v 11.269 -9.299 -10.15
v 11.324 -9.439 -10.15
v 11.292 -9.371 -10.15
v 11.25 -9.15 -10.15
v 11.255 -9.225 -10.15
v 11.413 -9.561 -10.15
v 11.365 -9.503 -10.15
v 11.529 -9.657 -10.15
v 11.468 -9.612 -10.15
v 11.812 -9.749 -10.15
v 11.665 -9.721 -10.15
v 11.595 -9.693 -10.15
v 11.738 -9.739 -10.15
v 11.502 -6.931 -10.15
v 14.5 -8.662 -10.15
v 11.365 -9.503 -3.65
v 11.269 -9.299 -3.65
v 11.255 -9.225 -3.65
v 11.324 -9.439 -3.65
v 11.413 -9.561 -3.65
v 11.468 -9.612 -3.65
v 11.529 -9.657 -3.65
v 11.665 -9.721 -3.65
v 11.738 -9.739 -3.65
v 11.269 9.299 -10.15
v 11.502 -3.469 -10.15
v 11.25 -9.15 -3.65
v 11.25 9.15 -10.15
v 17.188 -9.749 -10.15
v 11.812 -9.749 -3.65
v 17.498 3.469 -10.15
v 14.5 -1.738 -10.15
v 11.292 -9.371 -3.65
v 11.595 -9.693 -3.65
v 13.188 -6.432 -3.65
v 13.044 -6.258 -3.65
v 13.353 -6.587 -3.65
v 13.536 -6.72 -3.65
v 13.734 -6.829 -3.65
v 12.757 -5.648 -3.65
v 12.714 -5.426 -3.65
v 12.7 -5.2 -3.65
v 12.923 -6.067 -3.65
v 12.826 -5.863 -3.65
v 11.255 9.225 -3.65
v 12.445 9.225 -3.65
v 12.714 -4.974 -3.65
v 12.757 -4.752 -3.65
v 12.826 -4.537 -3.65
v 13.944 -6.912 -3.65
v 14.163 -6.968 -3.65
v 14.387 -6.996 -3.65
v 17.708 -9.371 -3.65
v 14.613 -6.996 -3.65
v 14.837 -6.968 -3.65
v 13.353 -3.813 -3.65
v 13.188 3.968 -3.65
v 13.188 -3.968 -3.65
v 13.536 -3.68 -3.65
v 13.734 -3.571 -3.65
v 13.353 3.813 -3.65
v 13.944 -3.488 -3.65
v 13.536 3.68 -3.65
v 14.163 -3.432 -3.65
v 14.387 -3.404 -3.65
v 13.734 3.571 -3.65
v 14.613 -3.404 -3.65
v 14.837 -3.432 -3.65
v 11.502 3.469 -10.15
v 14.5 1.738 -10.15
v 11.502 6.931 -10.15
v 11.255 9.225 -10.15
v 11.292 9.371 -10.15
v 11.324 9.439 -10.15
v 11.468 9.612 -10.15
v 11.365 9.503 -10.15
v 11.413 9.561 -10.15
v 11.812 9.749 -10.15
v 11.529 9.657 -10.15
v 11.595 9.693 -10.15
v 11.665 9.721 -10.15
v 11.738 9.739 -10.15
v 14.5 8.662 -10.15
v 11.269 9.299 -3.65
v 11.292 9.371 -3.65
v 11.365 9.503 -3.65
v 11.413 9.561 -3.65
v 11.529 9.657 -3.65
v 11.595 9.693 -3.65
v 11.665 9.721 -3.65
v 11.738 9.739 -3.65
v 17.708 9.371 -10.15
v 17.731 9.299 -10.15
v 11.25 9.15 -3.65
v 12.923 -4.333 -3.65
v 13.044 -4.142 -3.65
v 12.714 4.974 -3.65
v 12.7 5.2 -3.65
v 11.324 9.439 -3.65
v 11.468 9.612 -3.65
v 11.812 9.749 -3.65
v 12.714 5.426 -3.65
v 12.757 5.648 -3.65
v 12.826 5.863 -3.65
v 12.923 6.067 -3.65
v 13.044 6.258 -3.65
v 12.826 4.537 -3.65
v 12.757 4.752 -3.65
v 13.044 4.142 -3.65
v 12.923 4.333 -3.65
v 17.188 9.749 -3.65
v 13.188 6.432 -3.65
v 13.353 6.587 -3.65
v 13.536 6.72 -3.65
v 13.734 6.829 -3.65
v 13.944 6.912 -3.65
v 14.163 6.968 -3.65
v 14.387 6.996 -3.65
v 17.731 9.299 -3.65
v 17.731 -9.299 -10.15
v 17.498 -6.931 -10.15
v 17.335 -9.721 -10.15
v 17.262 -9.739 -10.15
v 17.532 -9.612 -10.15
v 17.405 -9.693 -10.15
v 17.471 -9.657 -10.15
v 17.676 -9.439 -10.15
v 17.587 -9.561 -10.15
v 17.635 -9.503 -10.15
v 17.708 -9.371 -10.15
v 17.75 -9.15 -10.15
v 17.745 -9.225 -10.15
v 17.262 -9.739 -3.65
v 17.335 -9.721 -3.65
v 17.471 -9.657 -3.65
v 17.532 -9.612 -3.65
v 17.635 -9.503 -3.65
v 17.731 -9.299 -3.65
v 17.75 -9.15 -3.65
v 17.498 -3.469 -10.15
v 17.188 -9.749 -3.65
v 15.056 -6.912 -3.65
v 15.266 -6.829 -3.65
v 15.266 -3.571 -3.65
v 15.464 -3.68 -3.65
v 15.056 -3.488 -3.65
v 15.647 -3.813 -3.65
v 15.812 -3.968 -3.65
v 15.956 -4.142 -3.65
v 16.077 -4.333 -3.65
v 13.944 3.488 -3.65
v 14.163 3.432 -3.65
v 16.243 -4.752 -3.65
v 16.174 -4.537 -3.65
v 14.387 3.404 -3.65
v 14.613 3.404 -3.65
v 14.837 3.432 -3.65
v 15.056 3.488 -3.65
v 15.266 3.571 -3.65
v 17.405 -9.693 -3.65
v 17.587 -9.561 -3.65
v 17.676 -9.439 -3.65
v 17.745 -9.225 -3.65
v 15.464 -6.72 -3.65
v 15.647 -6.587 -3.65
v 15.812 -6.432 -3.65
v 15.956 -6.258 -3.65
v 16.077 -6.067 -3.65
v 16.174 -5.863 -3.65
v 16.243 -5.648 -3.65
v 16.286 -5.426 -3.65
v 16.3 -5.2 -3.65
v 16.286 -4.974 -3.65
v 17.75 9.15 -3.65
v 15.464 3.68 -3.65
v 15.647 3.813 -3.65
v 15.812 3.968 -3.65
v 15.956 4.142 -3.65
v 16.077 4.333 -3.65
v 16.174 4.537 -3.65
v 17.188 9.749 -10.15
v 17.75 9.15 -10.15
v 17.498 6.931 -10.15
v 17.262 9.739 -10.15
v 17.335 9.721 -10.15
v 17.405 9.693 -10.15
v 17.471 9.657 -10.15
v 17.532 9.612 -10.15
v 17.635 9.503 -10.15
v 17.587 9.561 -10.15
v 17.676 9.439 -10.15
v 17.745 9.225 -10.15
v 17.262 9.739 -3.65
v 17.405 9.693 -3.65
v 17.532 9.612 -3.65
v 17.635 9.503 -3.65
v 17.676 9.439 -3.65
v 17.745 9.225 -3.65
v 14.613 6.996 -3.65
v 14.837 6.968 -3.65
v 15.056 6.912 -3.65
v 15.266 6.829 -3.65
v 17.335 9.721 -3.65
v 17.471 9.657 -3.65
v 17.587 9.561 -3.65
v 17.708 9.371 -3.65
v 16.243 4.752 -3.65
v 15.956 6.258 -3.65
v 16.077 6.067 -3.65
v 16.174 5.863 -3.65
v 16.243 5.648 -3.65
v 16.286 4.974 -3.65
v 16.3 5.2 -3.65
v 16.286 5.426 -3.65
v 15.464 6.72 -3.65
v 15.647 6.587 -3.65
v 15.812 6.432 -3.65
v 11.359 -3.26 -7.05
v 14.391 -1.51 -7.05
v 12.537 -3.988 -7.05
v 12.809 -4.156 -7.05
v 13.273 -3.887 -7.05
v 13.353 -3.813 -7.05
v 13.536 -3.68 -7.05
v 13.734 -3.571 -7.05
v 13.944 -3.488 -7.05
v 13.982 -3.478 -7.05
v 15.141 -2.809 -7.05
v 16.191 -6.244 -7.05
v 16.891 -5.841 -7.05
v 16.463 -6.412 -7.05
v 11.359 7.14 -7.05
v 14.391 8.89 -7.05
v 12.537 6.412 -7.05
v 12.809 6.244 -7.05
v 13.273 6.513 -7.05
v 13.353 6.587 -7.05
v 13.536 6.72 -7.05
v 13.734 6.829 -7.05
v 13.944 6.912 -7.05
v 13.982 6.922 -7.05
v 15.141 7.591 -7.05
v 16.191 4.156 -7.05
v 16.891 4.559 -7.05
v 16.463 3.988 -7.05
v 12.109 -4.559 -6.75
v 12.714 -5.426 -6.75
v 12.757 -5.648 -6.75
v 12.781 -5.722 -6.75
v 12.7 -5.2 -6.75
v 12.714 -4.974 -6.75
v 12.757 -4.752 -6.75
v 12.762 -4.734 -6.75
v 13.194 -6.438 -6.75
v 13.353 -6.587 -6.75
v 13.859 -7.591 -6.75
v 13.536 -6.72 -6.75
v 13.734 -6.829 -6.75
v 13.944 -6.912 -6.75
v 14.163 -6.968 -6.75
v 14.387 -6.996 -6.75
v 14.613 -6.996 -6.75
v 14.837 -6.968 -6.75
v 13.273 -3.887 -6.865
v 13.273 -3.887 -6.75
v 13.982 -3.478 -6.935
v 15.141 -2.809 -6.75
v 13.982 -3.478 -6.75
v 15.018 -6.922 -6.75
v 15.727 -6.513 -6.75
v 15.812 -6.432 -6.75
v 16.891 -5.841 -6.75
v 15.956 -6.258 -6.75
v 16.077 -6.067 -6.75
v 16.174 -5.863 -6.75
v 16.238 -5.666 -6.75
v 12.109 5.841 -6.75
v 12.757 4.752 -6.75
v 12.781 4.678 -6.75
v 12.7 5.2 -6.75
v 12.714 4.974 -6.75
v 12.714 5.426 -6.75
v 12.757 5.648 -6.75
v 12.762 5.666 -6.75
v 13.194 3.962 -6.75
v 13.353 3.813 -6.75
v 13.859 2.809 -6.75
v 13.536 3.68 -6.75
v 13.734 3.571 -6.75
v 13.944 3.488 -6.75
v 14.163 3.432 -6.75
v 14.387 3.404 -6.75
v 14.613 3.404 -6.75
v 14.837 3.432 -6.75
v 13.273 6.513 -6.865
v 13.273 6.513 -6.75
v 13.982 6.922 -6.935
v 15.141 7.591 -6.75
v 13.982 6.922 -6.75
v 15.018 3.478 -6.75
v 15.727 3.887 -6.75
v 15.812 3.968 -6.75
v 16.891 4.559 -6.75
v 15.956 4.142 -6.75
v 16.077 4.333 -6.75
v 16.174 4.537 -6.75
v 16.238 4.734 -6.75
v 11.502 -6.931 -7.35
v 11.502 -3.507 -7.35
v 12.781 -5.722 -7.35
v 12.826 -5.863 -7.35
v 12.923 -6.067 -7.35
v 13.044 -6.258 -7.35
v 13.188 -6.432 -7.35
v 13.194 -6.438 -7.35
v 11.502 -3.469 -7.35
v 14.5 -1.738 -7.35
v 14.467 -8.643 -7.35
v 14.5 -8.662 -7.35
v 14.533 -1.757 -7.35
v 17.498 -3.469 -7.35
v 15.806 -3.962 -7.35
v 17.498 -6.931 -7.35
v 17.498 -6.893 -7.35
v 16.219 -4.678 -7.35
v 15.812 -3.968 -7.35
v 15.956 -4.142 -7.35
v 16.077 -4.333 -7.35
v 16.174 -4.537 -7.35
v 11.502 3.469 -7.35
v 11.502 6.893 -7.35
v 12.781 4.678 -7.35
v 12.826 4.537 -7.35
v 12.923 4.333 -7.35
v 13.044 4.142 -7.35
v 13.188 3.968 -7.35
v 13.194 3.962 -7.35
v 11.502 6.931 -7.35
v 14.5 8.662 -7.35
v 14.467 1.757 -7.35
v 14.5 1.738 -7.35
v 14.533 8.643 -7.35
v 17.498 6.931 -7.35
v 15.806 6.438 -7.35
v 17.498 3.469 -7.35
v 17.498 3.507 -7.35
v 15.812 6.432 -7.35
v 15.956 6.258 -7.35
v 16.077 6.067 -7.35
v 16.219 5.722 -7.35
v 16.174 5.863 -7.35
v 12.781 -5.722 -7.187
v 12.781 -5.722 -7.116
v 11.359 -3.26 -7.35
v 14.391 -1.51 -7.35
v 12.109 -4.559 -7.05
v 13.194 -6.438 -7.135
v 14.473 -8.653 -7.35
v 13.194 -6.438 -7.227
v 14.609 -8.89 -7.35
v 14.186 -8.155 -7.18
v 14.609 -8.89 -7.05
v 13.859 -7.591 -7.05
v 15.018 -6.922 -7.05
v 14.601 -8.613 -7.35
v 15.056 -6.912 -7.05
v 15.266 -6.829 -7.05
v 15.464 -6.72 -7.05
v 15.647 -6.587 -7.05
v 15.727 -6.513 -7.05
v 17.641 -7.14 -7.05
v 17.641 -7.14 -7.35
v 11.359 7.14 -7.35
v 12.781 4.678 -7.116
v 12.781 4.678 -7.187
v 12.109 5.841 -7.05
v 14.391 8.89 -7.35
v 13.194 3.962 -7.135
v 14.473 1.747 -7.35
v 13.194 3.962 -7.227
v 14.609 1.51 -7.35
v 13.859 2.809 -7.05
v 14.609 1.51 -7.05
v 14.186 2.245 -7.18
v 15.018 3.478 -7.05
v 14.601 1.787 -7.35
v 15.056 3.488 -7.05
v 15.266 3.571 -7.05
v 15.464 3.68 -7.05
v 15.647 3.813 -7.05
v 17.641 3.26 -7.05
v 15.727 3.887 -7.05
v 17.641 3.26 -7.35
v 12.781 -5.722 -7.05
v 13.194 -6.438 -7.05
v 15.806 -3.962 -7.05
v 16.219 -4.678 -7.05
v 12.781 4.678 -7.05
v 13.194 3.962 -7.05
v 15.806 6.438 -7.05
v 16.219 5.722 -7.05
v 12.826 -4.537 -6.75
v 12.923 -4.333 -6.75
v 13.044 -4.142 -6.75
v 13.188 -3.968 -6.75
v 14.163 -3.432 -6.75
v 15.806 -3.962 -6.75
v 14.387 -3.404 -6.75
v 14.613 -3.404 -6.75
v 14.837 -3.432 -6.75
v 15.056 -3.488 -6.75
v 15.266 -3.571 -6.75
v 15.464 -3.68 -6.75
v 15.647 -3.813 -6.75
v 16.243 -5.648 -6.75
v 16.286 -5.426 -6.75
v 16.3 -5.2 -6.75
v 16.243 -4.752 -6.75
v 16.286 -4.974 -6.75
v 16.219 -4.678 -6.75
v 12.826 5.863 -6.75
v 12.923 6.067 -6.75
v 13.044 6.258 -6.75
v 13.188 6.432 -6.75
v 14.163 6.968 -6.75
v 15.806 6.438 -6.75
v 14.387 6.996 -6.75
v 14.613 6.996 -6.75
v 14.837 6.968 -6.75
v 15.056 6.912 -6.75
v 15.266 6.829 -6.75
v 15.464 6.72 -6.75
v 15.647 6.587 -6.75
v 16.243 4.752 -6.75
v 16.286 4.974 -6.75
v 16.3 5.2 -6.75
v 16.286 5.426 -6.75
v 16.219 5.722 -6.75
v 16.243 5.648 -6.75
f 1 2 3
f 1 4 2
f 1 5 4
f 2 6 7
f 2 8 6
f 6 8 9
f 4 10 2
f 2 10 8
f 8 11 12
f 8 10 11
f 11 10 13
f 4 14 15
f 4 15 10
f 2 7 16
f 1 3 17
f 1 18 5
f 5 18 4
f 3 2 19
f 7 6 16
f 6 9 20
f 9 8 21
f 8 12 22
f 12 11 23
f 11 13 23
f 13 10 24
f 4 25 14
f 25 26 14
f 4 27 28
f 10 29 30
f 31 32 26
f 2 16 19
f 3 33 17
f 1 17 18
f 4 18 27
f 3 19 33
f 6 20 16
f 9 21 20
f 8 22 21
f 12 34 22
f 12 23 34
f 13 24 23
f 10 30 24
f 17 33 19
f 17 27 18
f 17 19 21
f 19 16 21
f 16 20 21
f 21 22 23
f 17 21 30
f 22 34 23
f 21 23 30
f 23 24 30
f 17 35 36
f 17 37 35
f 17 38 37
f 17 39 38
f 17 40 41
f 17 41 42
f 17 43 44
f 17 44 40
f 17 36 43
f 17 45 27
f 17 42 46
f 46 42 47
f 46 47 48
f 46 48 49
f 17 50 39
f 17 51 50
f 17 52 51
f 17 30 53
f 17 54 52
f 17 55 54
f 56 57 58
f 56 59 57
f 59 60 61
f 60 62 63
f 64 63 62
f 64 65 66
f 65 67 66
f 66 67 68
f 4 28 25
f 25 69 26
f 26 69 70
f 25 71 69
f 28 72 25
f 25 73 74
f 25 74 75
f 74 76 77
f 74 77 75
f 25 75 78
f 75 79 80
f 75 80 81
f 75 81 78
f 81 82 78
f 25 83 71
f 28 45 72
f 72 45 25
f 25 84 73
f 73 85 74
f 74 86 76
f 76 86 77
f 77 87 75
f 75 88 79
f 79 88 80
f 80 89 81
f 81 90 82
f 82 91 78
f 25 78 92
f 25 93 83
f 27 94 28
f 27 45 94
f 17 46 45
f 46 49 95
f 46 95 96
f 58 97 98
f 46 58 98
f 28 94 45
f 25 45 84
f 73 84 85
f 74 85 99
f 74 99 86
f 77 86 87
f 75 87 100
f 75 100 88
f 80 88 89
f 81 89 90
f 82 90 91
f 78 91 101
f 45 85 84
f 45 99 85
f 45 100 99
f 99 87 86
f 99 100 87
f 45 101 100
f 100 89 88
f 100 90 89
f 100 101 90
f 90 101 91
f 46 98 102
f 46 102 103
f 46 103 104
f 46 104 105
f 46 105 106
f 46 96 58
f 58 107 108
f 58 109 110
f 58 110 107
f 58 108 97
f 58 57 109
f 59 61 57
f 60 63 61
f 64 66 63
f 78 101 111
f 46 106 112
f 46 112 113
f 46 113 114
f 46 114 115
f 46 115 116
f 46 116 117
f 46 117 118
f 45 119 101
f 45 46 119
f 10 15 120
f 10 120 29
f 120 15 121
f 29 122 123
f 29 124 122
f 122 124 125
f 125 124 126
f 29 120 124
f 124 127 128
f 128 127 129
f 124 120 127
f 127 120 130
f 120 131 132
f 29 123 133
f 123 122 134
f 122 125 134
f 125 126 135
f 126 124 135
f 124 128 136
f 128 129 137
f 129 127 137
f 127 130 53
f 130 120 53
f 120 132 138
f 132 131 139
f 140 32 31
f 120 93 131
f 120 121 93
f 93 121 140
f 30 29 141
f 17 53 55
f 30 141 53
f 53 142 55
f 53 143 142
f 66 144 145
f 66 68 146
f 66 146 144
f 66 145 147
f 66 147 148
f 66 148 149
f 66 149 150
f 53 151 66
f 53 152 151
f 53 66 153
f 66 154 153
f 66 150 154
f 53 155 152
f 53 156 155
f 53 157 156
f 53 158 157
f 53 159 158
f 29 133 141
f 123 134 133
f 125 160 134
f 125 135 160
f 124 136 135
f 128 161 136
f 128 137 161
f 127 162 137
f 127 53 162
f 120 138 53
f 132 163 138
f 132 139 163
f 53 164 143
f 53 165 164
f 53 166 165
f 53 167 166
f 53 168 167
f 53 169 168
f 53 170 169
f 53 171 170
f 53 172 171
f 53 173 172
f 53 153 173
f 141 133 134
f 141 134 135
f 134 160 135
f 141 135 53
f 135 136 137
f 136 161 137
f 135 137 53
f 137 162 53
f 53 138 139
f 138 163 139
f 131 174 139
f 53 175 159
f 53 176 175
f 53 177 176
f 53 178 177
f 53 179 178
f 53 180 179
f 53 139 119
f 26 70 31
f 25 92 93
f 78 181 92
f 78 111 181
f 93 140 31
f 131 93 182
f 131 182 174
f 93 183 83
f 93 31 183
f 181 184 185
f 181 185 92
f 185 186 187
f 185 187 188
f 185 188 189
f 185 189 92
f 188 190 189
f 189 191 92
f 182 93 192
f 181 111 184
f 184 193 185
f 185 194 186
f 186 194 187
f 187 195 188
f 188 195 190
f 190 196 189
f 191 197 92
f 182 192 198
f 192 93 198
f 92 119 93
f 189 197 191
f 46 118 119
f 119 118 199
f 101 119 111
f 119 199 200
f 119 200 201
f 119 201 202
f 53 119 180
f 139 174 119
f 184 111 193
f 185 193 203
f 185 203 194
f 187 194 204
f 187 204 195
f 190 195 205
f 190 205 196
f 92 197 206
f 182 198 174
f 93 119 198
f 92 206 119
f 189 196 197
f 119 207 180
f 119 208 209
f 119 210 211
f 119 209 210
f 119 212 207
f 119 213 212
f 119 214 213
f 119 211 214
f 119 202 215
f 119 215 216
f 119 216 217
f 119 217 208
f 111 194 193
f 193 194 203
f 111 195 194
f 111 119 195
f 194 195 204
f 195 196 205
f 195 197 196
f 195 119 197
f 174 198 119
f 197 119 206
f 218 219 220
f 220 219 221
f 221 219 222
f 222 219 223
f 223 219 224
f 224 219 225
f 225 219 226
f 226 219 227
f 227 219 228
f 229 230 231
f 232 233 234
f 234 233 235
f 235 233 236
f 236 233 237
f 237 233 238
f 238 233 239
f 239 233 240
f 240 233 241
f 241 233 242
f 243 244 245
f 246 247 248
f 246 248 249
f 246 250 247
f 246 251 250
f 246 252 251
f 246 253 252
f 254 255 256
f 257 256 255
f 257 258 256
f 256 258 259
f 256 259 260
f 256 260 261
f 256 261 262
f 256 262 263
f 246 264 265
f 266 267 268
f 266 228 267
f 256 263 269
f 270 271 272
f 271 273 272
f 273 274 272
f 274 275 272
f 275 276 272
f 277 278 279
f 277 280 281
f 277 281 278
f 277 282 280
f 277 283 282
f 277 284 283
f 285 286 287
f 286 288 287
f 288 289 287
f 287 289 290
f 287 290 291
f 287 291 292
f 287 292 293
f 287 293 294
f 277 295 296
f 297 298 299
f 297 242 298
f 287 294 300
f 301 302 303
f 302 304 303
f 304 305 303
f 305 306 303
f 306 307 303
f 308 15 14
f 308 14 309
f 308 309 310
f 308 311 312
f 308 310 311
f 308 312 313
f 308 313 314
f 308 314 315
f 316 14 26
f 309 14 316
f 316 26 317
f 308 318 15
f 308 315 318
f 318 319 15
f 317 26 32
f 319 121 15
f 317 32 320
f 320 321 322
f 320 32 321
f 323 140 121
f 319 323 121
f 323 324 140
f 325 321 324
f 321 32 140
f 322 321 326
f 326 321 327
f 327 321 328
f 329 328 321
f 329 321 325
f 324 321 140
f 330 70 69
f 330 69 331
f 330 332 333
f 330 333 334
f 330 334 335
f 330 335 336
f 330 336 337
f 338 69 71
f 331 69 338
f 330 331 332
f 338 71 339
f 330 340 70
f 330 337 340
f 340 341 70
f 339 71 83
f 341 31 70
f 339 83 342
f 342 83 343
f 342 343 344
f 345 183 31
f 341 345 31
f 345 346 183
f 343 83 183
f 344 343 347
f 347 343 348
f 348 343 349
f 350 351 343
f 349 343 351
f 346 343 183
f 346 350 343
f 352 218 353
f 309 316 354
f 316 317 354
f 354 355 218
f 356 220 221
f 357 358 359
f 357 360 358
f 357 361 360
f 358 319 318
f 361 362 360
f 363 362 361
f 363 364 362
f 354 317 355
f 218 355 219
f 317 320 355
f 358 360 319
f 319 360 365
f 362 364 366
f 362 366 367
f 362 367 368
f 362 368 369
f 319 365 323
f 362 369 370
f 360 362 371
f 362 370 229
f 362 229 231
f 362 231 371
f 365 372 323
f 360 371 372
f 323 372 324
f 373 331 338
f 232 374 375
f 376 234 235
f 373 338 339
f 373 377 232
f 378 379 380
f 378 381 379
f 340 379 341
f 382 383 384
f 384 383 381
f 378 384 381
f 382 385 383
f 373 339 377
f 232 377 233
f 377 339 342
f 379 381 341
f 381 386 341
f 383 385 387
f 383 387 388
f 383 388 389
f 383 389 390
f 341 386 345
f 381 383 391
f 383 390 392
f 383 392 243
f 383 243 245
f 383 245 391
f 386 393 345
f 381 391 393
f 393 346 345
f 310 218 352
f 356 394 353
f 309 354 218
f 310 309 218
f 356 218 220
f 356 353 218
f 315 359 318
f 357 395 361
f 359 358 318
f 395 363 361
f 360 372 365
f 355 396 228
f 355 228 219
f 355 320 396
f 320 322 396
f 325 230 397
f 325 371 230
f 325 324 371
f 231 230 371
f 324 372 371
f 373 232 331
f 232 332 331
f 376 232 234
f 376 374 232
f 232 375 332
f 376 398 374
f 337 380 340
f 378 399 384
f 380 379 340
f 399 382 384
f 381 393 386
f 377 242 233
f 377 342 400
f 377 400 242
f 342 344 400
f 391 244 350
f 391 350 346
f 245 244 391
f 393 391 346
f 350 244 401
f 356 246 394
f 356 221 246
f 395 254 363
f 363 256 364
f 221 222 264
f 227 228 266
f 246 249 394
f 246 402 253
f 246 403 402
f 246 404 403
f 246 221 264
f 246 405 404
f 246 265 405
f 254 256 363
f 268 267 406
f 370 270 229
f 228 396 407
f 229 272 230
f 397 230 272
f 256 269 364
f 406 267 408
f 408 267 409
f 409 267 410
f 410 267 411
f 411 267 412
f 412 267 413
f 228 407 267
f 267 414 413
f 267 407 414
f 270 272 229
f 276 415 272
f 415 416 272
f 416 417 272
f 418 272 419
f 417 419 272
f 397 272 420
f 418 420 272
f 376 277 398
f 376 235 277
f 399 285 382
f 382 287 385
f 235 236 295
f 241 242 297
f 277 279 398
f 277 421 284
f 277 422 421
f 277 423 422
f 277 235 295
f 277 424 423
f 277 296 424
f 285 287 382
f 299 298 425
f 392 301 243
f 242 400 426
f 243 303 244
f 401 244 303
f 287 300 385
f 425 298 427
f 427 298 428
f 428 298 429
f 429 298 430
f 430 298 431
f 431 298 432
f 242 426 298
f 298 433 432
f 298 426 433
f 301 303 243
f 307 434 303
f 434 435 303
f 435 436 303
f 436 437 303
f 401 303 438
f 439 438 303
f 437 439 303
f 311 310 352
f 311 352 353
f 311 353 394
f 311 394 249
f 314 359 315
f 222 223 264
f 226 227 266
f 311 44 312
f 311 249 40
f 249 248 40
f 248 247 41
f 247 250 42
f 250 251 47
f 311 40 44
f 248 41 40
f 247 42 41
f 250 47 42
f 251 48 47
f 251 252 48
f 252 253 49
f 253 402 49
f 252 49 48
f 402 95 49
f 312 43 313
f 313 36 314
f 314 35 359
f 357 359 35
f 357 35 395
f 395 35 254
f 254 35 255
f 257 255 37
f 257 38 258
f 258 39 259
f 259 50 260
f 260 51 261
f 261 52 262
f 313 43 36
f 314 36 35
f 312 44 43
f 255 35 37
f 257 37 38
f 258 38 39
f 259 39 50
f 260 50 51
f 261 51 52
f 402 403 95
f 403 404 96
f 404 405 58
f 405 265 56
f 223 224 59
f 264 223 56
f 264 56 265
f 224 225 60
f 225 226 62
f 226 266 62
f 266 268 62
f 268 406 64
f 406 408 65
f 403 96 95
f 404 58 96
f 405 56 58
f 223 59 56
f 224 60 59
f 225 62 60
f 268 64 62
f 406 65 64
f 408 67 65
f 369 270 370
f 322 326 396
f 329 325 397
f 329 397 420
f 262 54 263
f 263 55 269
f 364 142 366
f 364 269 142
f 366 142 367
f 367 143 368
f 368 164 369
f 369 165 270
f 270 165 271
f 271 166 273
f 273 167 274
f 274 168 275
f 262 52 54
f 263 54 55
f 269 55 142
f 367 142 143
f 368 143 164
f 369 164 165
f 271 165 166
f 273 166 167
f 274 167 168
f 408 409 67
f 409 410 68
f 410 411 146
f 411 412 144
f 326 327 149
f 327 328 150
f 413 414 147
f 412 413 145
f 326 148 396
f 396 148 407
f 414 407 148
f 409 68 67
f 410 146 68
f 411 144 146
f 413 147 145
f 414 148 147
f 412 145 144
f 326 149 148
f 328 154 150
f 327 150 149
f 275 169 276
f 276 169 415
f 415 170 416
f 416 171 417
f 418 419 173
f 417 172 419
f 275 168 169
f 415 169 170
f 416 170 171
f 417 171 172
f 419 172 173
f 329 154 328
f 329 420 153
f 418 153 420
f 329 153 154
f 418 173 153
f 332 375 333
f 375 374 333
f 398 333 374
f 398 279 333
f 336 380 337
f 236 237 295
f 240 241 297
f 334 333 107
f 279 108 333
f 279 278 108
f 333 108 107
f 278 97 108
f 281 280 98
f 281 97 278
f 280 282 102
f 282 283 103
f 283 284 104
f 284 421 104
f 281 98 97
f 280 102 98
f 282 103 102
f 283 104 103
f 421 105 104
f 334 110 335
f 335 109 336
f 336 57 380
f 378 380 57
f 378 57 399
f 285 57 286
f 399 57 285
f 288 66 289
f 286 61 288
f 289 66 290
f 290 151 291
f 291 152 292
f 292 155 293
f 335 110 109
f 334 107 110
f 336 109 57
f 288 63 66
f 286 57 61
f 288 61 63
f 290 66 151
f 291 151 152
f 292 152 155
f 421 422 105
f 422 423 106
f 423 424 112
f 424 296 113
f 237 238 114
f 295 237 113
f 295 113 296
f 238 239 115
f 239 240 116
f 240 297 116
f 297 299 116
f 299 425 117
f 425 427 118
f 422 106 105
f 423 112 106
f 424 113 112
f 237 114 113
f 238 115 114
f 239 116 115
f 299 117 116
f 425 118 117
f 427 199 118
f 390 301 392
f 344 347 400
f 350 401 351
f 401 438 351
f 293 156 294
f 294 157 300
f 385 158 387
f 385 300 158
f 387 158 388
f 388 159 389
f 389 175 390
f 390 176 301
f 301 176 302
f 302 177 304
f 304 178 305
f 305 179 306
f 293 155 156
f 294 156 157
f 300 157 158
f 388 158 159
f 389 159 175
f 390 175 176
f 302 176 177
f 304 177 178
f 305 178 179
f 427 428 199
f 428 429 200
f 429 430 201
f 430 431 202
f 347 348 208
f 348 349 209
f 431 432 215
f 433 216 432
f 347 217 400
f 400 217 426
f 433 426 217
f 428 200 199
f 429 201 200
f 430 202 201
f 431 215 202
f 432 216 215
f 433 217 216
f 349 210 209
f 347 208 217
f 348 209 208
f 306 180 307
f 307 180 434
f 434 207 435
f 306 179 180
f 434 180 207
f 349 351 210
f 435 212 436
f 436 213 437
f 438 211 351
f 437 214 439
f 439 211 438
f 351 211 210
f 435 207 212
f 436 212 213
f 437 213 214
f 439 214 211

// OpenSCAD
$fn = 50;

difference() {
	union() {
		translate(v = [14.5, 0, -10.15]) {
			hull() {
				translate(v = [-2.65, 9.15, 0]) {
					cylinder(h = 6.5, r = 0.6);
				}
				translate(v = [2.65, 9.15, 0]) {
					cylinder(h = 6.5, r = 0.6);
				}
				translate(v = [-2.65, -9.15, 0]) {
					cylinder(h = 6.5, r = 0.6);
				}
				translate(v = [2.65, -9.15, 0]) {
					cylinder(h = 6.5, r = 0.6);
				}
			}
		}
	}
	union() {
		translate(v = [14.5, -5.2, -7.3500000000000005]) {
			rotate(a = [180, 0, 30]) {
				difference() {
					union() {
						translate(v = [-1.75, -3.25, -0.3]) {
							cube(size = [3.5, 6.5, 0.3]);
						}
						translate(v = [-1.75, -1.75, -0.6]) {
							cube(size = [3.5, 3.5, 0.3]);
						}
						translate(v = [-1.75, -3.25, 52.8]) {
							cube(size = [3.5, 6.5, 0.3]);
						}
						translate(v = [-1.75, -1.75, 53.099999999999994]) {
							cube(size = [3.5, 3.5, 0.3]);
						}
						linear_extrude(height = 102.8) {
							polygon(points = [[3.4619999999999997, 0.0], [1.7310000000000003, 2.9981799479017264], [-1.7309999999999992, 2.9981799479017264], [-3.4619999999999997, 4.2397272186481365e-16], [-1.7310000000000014, -2.998179947901726], [1.7309999999999977, -2.9981799479017277]]);
						}
						translate(v = [-1.75, -3.25, -0.3]) {
							cube(size = [3.5, 6.5, 0.3]);
						}
						translate(v = [-1.75, -1.75, -0.6]) {
							cube(size = [3.5, 3.5, 0.3]);
						}
						translate(v = [-1.75, -3.25, 102.8]) {
							cube(size = [3.5, 6.5, 0.3]);
						}
						translate(v = [-1.75, -1.75, 103.1]) {
							cube(size = [3.5, 3.5, 0.3]);
						}
						translate(v = [-1.75, -3.25, -0.3]) {
							cube(size = [3.5, 6.5, 0.3]);
						}
						translate(v = [-1.75, -1.75, -0.6]) {
							cube(size = [3.5, 3.5, 0.3]);
						}
						translate(v = [-1.75, -3.25, 152.8]) {
							cube(size = [3.5, 6.5, 0.3]);
						}
						translate(v = [-1.75, -1.75, 153.10000000000002]) {
							cube(size = [3.5, 3.5, 0.3]);
						}
					}
					union();
				}
			}
		}
		translate(v = [14.5, 5.2, -7.3500000000000005]) {
			rotate(a = [180, 0, 30]) {
				difference() {
					union() {
						translate(v = [-1.75, -3.25, -0.3]) {
							cube(size = [3.5, 6.5, 0.3]);
						}
						translate(v = [-1.75, -1.75, -0.6]) {
							cube(size = [3.5, 3.5, 0.3]);
						}
						translate(v = [-1.75, -3.25, 52.8]) {
							cube(size = [3.5, 6.5, 0.3]);
						}
						translate(v = [-1.75, -1.75, 53.099999999999994]) {
							cube(size = [3.5, 3.5, 0.3]);
						}
						linear_extrude(height = 102.8) {
							polygon(points = [[3.4619999999999997, 0.0], [1.7310000000000003, 2.9981799479017264], [-1.7309999999999992, 2.9981799479017264], [-3.4619999999999997, 4.2397272186481365e-16], [-1.7310000000000014, -2.998179947901726], [1.7309999999999977, -2.9981799479017277]]);
						}
						translate(v = [-1.75, -3.25, -0.3]) {
							cube(size = [3.5, 6.5, 0.3]);
						}
						translate(v = [-1.75, -1.75, -0.6]) {
							cube(size = [3.5, 3.5, 0.3]);
						}
						translate(v = [-1.75, -3.25, 102.8]) {
							cube(size = [3.5, 6.5, 0.3]);
						}
						translate(v = [-1.75, -1.75, 103.1]) {
							cube(size = [3.5, 3.5, 0.3]);
						}
						translate(v = [-1.75, -3.25, -0.3]) {
							cube(size = [3.5, 6.5, 0.3]);
						}
						translate(v = [-1.75, -1.75, -0.6]) {
							cube(size = [3.5, 3.5, 0.3]);
						}
						translate(v = [-1.75, -3.25, 152.8]) {
							cube(size = [3.5, 6.5, 0.3]);
						}
						translate(v = [-1.75, -1.75, 153.10000000000002]) {
							cube(size = [3.5, 3.5, 0.3]);
						}
					}
					union();
				}
			}
		}
		translate(v = [14.5, -5.2, -11.15]) {
			cylinder(h = 8.5, r = 1.8);
		}
		translate(v = [14.5, 5.2, -11.15]) {
			cylinder(h = 8.5, r = 1.8);
		}
	}
}
